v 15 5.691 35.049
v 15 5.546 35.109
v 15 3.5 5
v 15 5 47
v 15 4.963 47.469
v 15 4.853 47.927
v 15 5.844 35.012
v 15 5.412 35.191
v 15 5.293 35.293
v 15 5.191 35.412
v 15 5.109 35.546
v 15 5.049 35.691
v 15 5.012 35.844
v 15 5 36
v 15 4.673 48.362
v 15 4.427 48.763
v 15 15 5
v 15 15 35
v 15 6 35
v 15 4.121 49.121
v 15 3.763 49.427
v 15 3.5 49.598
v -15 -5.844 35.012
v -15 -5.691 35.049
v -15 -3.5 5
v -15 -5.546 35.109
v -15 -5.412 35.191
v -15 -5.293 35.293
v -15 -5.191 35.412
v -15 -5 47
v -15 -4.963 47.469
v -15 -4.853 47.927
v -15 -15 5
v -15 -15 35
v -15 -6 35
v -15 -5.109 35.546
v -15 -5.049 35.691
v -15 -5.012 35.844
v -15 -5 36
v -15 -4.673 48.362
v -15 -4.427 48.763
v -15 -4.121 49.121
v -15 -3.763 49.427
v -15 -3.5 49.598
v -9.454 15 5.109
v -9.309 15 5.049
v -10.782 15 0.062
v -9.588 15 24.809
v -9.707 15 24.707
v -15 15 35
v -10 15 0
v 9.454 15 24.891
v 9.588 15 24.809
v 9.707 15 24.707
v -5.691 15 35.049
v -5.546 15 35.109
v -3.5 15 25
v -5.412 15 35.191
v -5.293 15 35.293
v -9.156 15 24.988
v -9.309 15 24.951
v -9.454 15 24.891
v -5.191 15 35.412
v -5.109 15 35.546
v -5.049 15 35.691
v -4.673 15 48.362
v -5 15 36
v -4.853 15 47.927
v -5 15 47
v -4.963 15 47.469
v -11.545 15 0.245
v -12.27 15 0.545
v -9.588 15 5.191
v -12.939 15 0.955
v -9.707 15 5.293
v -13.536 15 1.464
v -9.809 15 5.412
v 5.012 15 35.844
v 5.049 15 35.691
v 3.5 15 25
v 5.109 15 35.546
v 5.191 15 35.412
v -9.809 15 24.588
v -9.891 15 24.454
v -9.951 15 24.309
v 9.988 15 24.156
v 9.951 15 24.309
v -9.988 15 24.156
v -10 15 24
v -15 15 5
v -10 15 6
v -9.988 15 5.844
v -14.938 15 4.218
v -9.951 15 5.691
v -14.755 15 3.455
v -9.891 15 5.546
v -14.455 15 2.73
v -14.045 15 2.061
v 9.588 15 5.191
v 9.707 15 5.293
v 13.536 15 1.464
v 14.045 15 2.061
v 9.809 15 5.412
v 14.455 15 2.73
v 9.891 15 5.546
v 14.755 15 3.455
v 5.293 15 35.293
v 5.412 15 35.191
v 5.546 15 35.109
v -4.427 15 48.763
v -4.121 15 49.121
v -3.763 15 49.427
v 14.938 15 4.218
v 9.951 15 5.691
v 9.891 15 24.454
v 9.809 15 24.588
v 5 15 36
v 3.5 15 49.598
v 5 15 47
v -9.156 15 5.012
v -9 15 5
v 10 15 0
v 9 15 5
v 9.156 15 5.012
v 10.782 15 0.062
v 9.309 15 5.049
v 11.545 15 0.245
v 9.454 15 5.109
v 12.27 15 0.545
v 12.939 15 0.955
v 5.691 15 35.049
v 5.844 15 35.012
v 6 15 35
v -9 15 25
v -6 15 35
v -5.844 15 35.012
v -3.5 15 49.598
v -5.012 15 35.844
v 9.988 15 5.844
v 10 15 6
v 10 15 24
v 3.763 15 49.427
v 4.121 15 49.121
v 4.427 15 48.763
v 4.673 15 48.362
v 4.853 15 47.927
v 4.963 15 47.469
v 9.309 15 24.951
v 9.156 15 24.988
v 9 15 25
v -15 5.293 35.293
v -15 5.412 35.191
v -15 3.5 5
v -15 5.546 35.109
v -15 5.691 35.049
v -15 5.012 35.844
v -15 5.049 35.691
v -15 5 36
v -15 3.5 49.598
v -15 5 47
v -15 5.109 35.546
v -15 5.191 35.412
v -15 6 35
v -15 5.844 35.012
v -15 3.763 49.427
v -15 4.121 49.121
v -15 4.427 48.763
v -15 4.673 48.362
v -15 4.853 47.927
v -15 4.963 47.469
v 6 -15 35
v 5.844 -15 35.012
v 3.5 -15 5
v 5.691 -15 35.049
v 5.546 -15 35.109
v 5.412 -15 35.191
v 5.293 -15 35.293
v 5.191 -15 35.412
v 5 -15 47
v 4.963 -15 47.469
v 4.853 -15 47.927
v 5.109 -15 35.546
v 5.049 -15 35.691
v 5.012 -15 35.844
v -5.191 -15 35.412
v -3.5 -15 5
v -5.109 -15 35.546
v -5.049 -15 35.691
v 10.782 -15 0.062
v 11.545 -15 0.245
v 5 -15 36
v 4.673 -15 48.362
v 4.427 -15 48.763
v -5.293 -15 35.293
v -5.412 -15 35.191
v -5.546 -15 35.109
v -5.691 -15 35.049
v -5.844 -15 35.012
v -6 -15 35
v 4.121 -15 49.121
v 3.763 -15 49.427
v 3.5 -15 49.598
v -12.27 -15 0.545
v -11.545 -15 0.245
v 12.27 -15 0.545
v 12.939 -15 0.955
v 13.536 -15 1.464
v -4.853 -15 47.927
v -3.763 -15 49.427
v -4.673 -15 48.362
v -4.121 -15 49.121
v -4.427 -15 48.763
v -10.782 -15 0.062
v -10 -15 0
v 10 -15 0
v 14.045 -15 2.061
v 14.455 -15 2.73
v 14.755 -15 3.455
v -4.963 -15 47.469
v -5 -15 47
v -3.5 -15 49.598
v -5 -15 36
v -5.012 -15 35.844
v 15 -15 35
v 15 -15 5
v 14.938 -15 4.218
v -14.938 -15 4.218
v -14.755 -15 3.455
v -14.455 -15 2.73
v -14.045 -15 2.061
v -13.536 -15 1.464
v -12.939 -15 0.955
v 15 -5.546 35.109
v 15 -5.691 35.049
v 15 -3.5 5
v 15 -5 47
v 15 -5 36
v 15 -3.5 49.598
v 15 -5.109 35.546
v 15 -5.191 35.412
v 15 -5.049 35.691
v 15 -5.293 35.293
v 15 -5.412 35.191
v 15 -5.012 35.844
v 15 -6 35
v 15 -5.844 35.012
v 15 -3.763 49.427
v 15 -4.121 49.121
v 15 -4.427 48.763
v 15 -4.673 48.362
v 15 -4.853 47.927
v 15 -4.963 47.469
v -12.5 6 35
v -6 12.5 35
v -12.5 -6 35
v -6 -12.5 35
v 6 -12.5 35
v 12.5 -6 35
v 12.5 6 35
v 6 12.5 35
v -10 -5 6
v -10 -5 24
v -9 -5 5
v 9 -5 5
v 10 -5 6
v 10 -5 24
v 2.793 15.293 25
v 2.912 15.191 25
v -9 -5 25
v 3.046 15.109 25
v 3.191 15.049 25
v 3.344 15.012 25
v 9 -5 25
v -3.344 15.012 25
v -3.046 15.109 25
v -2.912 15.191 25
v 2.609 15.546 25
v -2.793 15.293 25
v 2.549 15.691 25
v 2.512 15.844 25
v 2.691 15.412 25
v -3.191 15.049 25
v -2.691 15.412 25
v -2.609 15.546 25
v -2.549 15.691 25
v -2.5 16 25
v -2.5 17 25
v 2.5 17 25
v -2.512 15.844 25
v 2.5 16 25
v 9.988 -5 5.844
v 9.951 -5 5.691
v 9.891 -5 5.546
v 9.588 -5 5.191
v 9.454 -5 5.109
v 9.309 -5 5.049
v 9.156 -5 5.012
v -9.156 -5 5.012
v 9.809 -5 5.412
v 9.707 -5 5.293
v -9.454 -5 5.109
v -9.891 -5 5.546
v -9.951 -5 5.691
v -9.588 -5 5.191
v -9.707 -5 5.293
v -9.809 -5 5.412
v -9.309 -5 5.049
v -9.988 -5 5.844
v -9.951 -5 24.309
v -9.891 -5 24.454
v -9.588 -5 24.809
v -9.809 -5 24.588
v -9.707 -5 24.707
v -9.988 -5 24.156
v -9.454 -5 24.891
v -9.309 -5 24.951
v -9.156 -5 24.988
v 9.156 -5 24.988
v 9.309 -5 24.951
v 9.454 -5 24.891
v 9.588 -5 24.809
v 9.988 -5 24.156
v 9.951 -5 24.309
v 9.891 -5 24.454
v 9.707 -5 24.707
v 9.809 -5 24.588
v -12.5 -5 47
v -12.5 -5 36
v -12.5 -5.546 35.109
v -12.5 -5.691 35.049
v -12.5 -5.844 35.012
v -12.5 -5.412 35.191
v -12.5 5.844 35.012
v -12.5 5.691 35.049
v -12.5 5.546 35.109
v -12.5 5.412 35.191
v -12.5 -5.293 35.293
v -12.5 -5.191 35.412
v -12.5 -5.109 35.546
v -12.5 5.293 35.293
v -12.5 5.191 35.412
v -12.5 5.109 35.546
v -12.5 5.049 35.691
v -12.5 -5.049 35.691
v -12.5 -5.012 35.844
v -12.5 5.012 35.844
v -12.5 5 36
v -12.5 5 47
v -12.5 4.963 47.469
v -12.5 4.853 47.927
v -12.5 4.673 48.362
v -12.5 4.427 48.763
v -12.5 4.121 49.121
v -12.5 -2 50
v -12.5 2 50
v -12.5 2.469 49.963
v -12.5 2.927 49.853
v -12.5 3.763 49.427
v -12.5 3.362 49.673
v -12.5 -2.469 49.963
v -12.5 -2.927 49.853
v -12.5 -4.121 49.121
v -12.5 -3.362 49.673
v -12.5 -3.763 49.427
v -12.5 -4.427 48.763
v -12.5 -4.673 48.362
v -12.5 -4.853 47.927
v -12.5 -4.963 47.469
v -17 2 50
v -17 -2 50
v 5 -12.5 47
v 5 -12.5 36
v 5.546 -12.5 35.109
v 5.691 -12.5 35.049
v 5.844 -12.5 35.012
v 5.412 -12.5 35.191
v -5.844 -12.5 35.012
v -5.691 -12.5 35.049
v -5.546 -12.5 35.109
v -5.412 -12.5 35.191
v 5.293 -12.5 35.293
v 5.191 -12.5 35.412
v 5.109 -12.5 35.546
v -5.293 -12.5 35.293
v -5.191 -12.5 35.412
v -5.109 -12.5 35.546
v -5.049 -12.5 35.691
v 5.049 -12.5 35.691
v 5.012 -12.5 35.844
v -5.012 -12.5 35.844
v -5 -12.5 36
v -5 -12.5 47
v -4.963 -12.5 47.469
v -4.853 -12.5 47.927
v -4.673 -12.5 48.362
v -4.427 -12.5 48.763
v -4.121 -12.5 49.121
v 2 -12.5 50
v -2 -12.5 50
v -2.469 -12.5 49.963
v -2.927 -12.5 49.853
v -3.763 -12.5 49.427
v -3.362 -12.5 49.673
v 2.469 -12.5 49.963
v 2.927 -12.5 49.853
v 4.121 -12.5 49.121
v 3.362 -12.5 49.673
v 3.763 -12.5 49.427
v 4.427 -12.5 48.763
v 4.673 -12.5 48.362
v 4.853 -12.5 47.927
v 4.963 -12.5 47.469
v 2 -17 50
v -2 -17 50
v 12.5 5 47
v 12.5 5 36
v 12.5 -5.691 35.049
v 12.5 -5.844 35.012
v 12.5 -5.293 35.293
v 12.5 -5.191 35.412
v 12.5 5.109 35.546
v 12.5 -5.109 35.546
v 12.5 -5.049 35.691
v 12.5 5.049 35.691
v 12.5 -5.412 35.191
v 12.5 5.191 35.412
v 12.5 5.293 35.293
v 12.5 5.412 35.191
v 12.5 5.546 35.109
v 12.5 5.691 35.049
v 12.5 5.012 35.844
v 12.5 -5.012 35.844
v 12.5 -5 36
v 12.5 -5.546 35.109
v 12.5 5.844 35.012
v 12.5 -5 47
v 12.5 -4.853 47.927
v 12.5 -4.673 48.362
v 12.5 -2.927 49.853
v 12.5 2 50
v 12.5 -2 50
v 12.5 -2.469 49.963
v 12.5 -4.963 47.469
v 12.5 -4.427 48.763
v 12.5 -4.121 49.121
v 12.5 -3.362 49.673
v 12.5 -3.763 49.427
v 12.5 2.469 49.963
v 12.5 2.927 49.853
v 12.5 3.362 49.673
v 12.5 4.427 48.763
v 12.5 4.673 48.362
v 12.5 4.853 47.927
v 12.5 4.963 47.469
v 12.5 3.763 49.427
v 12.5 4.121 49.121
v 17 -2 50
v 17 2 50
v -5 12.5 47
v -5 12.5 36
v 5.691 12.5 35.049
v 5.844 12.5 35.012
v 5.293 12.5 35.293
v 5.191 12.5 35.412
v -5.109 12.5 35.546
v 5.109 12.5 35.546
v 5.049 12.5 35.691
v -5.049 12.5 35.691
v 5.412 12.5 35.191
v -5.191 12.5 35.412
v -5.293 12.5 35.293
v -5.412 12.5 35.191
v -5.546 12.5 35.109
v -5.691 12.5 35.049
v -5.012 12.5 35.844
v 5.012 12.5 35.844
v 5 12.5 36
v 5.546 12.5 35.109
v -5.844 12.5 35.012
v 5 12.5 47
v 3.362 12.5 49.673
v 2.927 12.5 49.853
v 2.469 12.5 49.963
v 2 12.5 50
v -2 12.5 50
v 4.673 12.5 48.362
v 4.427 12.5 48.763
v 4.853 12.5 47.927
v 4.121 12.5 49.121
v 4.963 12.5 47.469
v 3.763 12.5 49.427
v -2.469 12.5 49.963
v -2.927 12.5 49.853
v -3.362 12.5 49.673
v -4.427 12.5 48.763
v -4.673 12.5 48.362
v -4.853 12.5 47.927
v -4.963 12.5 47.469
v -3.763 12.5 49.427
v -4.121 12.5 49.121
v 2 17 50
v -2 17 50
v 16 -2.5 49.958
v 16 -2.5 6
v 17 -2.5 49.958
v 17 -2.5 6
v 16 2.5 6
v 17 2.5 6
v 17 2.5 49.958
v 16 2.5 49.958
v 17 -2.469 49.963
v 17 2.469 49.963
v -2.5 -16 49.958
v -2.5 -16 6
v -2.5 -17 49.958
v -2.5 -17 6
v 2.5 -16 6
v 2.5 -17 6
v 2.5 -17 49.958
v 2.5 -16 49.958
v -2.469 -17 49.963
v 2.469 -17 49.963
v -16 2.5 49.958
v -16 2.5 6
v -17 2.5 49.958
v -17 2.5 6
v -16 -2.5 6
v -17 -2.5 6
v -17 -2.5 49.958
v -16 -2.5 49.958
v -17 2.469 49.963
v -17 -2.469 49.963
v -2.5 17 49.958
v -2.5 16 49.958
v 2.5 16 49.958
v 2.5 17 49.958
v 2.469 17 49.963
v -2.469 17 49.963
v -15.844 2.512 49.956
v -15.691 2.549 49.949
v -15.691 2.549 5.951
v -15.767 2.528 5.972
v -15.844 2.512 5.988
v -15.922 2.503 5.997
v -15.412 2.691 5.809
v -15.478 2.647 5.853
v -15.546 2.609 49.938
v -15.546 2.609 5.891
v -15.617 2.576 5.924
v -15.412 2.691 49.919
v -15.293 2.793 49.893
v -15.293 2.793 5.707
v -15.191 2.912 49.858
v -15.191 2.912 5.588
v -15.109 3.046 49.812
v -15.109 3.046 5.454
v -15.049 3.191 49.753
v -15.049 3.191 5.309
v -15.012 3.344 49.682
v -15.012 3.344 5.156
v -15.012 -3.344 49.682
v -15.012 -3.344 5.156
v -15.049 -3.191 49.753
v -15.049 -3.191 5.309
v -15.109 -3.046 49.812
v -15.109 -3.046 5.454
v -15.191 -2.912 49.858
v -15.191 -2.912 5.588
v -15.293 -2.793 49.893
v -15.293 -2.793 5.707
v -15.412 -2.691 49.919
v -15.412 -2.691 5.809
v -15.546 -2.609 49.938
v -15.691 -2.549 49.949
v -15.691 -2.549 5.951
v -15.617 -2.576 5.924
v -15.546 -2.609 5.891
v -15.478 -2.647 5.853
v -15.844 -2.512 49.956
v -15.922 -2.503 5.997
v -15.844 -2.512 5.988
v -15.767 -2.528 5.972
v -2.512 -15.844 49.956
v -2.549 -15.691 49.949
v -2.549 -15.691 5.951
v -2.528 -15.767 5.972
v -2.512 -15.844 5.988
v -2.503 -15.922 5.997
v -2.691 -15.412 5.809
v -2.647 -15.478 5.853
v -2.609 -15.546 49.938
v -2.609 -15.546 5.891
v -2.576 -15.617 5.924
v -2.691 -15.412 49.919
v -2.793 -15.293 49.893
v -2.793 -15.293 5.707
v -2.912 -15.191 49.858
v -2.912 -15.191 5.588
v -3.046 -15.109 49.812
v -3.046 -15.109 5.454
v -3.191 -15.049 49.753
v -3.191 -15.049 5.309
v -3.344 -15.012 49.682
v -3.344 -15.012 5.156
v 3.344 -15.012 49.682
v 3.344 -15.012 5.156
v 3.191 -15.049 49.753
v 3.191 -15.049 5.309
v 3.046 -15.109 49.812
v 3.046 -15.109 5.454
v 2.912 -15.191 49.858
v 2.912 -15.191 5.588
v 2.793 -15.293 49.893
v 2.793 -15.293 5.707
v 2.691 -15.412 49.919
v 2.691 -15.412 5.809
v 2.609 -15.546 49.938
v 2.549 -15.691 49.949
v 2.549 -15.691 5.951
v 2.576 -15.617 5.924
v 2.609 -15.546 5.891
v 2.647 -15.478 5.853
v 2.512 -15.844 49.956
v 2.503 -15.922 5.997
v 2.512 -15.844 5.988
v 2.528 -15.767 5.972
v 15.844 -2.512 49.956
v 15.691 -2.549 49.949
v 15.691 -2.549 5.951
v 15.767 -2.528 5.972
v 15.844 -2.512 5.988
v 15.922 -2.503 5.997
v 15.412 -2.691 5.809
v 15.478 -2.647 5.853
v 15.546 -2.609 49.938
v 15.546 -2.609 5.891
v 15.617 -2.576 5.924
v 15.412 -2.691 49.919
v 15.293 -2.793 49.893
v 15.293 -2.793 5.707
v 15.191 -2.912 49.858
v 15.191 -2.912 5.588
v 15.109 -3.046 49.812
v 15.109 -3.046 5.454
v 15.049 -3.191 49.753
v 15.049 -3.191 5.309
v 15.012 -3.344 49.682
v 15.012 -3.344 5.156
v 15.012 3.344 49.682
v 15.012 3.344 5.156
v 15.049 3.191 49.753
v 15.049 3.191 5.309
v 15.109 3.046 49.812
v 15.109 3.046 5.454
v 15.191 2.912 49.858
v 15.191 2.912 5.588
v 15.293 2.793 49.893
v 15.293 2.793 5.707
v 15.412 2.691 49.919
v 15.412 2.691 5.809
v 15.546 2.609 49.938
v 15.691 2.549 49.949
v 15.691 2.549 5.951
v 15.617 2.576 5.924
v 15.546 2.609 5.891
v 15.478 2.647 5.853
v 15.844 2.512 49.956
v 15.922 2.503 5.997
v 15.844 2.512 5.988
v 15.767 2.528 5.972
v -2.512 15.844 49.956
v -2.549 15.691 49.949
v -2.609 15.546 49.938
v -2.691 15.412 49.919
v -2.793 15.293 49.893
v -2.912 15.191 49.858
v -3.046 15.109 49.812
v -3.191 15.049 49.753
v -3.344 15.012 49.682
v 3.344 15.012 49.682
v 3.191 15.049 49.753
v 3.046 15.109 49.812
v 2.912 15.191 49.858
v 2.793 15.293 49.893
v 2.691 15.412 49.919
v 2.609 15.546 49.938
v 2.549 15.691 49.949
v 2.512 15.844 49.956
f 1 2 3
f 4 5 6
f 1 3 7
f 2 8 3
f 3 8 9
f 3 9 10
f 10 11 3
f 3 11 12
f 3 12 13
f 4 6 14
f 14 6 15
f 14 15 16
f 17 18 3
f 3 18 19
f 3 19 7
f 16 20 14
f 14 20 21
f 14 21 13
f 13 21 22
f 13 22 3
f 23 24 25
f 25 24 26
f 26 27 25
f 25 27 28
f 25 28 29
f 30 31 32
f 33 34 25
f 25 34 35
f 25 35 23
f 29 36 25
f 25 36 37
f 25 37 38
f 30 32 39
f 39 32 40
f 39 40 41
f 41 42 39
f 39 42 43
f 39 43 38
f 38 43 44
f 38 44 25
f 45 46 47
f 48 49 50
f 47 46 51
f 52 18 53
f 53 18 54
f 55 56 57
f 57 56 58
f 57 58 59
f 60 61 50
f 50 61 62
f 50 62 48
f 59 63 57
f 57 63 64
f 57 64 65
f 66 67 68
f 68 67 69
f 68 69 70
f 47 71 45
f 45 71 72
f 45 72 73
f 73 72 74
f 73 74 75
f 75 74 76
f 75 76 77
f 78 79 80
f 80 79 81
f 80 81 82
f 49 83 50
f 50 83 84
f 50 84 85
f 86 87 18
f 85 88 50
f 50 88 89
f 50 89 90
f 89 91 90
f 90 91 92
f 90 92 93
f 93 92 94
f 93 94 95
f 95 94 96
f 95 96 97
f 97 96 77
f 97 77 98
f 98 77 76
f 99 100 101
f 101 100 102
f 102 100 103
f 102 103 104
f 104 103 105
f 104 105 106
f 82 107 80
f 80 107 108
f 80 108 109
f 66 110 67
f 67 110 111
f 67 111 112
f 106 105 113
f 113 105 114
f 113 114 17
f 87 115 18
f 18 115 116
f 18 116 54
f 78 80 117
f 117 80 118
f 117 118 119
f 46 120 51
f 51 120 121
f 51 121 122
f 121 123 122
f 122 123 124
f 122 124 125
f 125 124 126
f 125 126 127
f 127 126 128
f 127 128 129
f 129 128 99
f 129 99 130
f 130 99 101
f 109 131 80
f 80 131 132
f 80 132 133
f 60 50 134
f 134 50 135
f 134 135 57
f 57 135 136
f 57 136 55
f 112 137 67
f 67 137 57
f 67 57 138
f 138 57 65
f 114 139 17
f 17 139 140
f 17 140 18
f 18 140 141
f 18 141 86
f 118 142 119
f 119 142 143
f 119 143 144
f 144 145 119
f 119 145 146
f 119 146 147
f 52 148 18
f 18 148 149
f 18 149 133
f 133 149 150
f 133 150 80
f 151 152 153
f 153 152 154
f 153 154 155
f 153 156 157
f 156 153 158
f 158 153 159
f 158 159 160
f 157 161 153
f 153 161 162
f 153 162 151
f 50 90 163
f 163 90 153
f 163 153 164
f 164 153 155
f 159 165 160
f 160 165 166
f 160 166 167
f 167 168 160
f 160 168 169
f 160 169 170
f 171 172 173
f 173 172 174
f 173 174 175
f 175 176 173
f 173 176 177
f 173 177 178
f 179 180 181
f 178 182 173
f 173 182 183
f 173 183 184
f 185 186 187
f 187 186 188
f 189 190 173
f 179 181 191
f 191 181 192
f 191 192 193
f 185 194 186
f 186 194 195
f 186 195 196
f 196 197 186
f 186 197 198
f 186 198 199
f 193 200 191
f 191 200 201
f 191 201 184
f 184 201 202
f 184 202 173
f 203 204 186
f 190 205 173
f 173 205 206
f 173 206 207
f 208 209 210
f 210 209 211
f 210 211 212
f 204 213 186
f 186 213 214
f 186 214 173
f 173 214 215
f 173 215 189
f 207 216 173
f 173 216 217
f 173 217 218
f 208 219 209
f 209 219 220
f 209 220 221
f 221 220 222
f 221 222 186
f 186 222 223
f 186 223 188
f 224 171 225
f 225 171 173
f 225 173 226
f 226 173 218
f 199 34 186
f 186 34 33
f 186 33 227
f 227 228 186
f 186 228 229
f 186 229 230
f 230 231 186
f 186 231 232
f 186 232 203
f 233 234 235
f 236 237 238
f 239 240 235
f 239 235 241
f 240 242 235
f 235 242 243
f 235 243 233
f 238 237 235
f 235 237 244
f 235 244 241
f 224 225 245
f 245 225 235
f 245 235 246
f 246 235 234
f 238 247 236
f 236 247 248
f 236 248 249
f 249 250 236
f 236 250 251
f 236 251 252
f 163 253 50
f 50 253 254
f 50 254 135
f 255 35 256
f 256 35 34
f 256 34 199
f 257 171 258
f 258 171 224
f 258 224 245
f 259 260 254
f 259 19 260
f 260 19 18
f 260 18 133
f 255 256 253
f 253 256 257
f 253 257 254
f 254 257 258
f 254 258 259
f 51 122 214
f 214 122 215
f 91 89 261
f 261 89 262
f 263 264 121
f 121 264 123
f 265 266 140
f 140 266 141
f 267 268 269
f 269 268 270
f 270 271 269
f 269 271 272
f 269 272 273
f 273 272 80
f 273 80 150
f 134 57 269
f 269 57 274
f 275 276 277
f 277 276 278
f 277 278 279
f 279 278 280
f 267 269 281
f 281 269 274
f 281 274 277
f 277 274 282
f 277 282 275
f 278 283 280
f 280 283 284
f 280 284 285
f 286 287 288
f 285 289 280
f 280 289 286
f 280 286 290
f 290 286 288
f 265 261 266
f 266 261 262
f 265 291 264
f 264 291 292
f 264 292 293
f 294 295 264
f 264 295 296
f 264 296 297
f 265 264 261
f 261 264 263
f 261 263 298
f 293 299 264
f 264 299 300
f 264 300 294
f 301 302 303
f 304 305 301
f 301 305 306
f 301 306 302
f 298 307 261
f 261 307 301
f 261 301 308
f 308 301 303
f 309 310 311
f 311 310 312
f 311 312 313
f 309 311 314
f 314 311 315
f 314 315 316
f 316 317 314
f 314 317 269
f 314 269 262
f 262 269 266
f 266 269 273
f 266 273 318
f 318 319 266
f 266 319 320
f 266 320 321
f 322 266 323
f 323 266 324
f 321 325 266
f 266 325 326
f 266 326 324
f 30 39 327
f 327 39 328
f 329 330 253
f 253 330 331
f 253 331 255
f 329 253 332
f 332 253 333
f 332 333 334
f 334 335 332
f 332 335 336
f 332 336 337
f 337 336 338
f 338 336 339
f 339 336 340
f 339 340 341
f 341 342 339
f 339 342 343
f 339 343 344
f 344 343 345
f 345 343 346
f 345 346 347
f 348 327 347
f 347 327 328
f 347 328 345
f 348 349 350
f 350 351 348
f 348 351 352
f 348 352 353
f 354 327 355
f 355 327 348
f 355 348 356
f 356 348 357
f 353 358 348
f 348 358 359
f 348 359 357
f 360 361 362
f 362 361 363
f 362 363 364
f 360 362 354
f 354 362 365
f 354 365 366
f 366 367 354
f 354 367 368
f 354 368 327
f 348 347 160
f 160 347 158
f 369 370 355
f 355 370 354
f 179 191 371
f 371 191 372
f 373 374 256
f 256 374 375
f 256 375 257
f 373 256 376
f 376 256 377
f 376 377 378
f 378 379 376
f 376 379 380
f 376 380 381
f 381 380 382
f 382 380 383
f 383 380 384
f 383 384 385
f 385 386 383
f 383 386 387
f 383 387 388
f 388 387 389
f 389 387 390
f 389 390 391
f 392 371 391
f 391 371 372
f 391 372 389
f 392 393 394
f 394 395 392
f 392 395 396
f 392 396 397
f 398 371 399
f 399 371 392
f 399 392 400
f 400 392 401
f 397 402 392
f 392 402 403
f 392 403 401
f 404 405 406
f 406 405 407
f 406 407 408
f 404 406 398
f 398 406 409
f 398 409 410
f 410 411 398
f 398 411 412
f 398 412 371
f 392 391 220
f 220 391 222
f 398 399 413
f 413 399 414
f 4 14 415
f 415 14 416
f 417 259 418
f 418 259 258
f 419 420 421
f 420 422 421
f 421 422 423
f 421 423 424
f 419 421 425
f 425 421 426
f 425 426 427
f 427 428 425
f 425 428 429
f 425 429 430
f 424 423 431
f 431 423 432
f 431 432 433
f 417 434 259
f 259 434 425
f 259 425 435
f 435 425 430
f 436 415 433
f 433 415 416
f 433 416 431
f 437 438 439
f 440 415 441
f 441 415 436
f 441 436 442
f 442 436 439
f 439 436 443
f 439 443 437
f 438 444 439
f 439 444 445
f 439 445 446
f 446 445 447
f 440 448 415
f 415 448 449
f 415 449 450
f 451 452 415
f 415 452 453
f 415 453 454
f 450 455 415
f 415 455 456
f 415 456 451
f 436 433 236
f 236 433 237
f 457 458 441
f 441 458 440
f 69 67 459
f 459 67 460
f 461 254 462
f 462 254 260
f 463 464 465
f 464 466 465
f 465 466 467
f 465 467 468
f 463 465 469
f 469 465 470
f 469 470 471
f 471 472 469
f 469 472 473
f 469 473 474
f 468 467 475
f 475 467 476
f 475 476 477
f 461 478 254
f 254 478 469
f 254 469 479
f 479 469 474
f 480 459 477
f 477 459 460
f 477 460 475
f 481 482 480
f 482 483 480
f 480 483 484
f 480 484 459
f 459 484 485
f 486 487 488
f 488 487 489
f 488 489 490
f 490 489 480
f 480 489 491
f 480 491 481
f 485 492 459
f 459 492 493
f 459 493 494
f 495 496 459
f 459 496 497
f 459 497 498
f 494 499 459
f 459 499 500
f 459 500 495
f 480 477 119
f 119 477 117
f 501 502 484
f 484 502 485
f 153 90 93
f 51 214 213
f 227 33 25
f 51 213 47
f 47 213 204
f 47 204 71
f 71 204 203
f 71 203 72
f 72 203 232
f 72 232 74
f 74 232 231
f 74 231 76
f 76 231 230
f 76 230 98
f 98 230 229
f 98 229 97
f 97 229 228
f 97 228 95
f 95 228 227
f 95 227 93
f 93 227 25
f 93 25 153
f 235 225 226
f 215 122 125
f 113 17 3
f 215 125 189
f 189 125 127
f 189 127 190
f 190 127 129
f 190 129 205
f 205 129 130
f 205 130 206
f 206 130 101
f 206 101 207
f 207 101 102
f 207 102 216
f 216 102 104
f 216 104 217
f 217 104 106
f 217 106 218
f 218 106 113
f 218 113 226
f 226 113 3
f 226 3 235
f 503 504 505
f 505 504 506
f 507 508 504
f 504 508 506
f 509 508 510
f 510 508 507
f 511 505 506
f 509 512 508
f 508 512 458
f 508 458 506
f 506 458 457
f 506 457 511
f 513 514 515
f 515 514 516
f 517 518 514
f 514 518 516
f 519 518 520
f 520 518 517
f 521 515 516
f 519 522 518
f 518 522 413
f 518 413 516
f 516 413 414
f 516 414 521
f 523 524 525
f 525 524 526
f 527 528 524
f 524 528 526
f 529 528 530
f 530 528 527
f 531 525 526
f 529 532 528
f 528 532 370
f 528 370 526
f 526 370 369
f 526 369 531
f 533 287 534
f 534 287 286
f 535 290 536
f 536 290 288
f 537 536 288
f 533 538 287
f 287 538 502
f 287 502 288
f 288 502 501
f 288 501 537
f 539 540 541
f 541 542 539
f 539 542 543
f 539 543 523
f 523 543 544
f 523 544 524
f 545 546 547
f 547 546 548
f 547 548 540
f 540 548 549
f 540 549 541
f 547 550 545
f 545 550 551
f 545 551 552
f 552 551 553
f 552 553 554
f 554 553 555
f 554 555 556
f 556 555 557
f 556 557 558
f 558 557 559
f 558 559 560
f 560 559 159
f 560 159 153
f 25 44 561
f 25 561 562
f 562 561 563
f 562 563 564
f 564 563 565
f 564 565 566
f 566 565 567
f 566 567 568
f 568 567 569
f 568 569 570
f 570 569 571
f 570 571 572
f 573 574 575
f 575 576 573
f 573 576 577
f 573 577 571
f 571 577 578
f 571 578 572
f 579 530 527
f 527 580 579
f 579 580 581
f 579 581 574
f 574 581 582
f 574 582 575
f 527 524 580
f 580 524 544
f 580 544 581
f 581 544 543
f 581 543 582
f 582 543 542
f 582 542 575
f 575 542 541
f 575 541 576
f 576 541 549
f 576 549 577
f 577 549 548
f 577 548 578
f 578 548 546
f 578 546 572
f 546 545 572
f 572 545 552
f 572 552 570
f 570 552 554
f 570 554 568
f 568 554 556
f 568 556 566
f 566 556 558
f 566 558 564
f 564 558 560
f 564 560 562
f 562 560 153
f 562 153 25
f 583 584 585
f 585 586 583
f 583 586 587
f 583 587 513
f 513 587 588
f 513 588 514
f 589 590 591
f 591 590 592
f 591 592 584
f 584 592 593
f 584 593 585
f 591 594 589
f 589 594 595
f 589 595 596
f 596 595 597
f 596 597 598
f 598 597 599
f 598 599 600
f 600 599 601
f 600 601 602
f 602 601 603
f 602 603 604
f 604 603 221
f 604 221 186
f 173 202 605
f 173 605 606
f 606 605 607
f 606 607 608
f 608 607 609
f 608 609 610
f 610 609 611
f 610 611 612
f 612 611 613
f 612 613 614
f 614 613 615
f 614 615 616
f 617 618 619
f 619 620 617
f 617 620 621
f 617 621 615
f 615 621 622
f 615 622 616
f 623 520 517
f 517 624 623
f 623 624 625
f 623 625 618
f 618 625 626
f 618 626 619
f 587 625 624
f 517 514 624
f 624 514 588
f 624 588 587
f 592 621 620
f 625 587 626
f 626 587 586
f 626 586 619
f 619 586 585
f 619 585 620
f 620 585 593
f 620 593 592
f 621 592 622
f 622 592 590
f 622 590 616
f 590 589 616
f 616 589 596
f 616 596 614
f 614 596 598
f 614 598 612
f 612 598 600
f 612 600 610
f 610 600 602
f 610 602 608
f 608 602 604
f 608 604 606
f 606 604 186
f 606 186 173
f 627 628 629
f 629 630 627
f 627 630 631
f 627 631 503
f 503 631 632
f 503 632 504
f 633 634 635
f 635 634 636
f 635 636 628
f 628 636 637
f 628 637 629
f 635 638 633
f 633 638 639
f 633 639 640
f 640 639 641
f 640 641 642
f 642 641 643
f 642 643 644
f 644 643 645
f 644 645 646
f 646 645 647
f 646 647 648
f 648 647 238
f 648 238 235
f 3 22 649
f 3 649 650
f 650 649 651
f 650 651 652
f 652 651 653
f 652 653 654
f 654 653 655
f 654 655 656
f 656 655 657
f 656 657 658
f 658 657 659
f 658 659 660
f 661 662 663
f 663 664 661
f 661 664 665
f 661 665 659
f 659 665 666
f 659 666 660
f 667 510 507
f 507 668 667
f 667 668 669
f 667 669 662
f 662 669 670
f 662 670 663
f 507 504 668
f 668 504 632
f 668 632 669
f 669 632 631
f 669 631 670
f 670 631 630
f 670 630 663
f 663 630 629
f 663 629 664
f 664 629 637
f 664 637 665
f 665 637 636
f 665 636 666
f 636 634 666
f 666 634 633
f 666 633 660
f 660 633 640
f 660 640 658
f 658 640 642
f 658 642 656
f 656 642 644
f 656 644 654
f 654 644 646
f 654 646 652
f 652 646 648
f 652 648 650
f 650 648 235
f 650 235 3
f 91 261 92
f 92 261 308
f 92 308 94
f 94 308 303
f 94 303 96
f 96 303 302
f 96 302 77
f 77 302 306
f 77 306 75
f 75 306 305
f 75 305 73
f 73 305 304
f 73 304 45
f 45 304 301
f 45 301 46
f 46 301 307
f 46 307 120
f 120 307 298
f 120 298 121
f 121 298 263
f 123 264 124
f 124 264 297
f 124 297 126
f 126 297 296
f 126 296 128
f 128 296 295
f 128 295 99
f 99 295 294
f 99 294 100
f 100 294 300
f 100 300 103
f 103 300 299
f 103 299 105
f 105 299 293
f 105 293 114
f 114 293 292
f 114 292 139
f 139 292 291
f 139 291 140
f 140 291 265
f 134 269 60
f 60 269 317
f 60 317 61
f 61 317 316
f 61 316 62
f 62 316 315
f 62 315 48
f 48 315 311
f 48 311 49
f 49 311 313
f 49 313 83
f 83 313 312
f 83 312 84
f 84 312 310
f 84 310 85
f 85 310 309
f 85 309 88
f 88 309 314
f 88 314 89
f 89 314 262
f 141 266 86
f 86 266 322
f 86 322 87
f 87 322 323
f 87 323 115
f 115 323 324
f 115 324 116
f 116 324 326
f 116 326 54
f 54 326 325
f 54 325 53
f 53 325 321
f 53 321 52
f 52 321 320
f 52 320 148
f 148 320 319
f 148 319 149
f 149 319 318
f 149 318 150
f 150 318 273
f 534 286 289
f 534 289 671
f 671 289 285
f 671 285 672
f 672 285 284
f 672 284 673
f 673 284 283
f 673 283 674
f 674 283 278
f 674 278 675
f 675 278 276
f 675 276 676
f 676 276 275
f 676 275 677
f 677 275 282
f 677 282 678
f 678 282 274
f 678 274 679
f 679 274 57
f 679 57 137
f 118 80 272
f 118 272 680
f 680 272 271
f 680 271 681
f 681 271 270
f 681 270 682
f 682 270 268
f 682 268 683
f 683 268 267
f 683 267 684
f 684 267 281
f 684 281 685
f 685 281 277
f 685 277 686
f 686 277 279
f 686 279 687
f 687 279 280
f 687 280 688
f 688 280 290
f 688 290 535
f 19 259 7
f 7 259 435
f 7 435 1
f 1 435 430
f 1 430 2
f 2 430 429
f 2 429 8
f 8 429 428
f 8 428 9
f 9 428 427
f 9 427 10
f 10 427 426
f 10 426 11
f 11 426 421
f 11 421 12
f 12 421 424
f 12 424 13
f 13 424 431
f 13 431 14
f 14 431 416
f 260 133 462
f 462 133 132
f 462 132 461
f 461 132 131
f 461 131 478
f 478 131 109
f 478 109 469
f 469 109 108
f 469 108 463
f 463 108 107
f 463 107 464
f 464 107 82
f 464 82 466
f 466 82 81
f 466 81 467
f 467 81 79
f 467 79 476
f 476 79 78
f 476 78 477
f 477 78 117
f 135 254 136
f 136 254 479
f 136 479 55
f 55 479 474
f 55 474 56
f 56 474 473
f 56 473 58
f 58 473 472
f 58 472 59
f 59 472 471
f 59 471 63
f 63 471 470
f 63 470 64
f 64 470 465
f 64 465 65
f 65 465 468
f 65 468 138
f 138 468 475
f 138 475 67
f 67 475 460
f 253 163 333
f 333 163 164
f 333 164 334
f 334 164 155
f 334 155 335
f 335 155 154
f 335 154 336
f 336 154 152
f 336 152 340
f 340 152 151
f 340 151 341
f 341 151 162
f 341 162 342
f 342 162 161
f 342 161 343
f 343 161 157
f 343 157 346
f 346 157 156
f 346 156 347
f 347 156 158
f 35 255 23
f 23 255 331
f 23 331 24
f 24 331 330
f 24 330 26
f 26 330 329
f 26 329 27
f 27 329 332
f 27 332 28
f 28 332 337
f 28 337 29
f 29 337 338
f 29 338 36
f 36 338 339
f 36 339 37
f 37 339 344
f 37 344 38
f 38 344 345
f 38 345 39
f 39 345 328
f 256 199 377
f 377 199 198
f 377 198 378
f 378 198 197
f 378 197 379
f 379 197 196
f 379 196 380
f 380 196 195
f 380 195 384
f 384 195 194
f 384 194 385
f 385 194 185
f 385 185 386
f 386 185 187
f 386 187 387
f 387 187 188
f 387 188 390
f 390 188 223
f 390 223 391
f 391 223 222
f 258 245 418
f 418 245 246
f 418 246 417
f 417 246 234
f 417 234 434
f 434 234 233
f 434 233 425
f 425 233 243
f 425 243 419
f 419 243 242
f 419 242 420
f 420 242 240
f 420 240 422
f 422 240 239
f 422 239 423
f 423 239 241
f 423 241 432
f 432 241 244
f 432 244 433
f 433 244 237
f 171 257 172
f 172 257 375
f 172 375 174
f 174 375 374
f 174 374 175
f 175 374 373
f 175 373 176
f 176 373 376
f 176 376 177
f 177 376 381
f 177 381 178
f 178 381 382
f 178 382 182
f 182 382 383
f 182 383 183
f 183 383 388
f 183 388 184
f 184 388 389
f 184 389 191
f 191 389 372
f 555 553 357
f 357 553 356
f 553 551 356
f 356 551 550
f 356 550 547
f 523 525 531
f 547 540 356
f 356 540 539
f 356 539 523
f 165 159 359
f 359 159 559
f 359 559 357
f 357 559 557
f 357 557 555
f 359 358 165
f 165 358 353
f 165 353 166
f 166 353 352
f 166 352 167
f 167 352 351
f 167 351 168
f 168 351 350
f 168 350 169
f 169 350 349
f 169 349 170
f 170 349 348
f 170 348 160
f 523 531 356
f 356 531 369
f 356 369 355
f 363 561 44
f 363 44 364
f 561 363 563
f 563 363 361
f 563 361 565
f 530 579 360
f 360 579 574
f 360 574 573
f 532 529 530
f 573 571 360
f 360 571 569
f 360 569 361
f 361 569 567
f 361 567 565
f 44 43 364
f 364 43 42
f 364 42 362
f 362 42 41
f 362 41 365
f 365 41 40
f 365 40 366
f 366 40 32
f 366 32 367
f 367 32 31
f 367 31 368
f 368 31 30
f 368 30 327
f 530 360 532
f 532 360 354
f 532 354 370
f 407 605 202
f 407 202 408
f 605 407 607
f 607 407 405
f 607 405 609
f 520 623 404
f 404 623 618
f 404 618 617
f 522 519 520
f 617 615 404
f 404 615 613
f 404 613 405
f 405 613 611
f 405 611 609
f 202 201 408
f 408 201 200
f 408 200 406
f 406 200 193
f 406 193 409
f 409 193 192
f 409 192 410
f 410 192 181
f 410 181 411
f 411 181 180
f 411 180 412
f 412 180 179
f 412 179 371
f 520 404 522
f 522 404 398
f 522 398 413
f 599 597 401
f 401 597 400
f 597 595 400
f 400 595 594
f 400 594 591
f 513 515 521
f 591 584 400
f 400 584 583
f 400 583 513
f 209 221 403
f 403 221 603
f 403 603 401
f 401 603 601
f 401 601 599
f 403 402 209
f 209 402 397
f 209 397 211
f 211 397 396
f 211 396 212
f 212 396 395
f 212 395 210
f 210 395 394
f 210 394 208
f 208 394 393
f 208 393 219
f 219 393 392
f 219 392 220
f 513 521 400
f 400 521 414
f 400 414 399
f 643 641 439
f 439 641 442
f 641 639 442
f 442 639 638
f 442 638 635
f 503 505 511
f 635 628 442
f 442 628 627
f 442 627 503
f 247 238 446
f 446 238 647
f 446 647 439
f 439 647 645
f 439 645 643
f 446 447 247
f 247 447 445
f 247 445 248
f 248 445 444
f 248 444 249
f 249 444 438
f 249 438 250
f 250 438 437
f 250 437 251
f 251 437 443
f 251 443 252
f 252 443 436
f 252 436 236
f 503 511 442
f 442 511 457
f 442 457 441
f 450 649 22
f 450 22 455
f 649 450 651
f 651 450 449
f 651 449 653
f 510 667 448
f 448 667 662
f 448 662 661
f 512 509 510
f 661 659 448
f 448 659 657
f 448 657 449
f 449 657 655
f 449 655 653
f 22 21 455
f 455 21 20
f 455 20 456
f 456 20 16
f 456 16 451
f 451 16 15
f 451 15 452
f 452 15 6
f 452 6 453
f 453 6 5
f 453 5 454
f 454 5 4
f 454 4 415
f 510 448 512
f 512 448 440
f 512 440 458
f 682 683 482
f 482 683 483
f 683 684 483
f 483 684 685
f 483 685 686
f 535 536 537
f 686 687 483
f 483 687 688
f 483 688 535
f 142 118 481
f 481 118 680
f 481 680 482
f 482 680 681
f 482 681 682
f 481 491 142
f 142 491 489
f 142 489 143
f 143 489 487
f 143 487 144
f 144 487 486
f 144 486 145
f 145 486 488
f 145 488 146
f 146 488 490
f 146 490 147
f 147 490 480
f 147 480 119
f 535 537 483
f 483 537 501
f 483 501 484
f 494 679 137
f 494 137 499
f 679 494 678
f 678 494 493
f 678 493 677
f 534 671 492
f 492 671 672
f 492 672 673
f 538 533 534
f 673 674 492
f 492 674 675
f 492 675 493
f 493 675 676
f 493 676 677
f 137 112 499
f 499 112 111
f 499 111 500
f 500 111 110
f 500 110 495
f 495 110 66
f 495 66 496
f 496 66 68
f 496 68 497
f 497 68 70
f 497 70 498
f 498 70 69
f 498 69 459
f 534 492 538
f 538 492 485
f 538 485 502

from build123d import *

# Parameters (mm, degrees)
SKETCH1_W           = 30
SKETCH1_H           = 30
BOSS_EXTRUDE1_DEPTH = 35
SKETCH2_W           = 20
SKETCH2_H           = 20
CUT_EXTRUDE1_DEPTH  = 20
SKETCH3_W           = 10
SKETCH3_H           = 2.5
SKETCH3_W_2         = 2.5
SKETCH3_H_2         = 10
BOSS_EXTRUDE2_DEPTH = 15
FILLET3_R           = 5
SKETCH4_W           = 44
SKETCH4_H           = 5
BOSS_EXTRUDE3_DEPTH = 2
CIRPATTERN1_COUNT   = 3
CIRPATTERN1_ANGLE   = 180
SKETCH5_W           = 5
SKETCH5_H           = 25
BOSS_EXTRUDE4_DEPTH = 2
FILLET1_R           = 1
FILLET2_R           = 3


with BuildPart() as part:
    # Sketch1 → Boss-Extrude1 (new body)
    with BuildSketch(Plane.XY):
        Rectangle(SKETCH1_W, SKETCH1_H)
    extrude(amount=BOSS_EXTRUDE1_DEPTH)

    # Sketch2 → Cut-Extrude1 (cut)
    with BuildSketch(Plane(origin=(0, 15, 0), x_dir=(1, 0, 0), z_dir=(0, 1, 0))):
        with Locations((0, -15)):
            Rectangle(SKETCH2_W, SKETCH2_H)
    extrude(amount=-CUT_EXTRUDE1_DEPTH, mode=Mode.SUBTRACT)

    # Sketch3 → Boss-Extrude2 (add)
    with BuildSketch(Plane.XY.offset(35)):
        with Locations((0, 13.75)):
            Rectangle(SKETCH3_W, SKETCH3_H)
        with Locations((13.75, 0)):
            Rectangle(SKETCH3_W_2, SKETCH3_H_2)
        with Locations((0, -13.75)):
            Rectangle(SKETCH3_W, SKETCH3_H)
        with Locations((-13.75, 0)):
            Rectangle(SKETCH3_W_2, SKETCH3_H_2)
    extrude(amount=BOSS_EXTRUDE2_DEPTH)

    # Fillet3
    fillet3_edges = [part.edges().sort_by_distance(p)[0] for p in [
        (15, 0, 0),
        (-15, 0, 0),
    ]]
    fillet(fillet3_edges, radius=FILLET3_R)

    # Sketch4 → Boss-Extrude3 (add)
    with BuildSketch(Plane(origin=(15, 0, 0), x_dir=(0, 0, -1), z_dir=(1, 0, 0))):
        with Locations((-28, 0)):
            Rectangle(SKETCH4_W, SKETCH4_H)
    boss_extrude3 = extrude(amount=BOSS_EXTRUDE3_DEPTH)

    # CirPattern1: Boss-Extrude3 ×3 about axis
    cirpattern1_axis = Axis((0, 0, 0), (0, 0, -1))
    for i in range(1, CIRPATTERN1_COUNT):
        add(boss_extrude3.rotate(cirpattern1_axis, i * CIRPATTERN1_ANGLE / (CIRPATTERN1_COUNT - 1)))

    # Sketch5 → Boss-Extrude4 (add)
    with BuildSketch(Plane(origin=(0, 15, 0), x_dir=(1, 0, 0), z_dir=(0, 1, 0))):
        with Locations((0, -37.5)):
            Rectangle(SKETCH5_W, SKETCH5_H)
    extrude(amount=BOSS_EXTRUDE4_DEPTH)

    # Fillet1
    fillet1_edges = [part.edges().sort_by_distance(p)[0] for p in [
        (-2.5, -15, 28),
        (0, -15, 6),
        (2.5, -15, 28),
        (-15, 2.5, 28),
        (-15, 0, 6),
        (-15, -2.5, 28),
        (-2.5, 15, 37.5),
        (2.5, 15, 37.5),
        (-10, 5, 25),
        (-10, 5, 5),
        (10, 5, 5),
        (10, 5, 25),
        (-5, 13.75, 35),
        (5, 13.75, 35),
        (13.75, 5, 35),
        (13.75, -5, 35),
        (5, -13.75, 35),
        (-5, -13.75, 35),
        (-13.75, -5, 35),
        (-13.75, 5, 35),
        (15, -2.5, 28),
        (15, 0, 6),
        (15, 2.5, 28),
    ]]
    fillet(fillet1_edges, radius=FILLET1_R - 0.0001)  # a hair under: the kernel refuses the full size

    # Fillet2
    fillet2_edges = [part.edges().sort_by_distance(p)[0] for p in [
        (-13.75, 5, 50),
        (-13.75, -5, 50),
        (5, -13.75, 50),
        (-5, -13.75, 50),
        (13.75, -5, 50),
        (13.75, 5, 50),
        (5, 13.75, 50),
        (-5, 13.75, 50),
    ]]
    fillet(fillet2_edges, radius=FILLET2_R)


solid = part.part
